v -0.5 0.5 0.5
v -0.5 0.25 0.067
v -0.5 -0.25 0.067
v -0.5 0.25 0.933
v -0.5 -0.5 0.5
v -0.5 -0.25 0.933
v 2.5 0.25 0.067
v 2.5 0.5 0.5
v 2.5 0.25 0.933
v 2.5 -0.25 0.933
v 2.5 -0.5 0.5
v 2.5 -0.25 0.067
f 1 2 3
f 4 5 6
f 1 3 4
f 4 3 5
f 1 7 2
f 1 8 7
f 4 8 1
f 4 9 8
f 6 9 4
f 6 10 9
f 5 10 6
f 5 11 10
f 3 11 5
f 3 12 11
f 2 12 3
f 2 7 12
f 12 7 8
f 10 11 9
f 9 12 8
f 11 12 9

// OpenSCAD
//Hexagonal Prism for Stacks of Shapes
//by Slashee the Cow

color("PeachPuff")
translate([-0.5,0,0.5])
rotate([30,0,0])
rotate([0,90,0])
linear_extrude(3, false)
circle(d  = 1, $fn = 6);
